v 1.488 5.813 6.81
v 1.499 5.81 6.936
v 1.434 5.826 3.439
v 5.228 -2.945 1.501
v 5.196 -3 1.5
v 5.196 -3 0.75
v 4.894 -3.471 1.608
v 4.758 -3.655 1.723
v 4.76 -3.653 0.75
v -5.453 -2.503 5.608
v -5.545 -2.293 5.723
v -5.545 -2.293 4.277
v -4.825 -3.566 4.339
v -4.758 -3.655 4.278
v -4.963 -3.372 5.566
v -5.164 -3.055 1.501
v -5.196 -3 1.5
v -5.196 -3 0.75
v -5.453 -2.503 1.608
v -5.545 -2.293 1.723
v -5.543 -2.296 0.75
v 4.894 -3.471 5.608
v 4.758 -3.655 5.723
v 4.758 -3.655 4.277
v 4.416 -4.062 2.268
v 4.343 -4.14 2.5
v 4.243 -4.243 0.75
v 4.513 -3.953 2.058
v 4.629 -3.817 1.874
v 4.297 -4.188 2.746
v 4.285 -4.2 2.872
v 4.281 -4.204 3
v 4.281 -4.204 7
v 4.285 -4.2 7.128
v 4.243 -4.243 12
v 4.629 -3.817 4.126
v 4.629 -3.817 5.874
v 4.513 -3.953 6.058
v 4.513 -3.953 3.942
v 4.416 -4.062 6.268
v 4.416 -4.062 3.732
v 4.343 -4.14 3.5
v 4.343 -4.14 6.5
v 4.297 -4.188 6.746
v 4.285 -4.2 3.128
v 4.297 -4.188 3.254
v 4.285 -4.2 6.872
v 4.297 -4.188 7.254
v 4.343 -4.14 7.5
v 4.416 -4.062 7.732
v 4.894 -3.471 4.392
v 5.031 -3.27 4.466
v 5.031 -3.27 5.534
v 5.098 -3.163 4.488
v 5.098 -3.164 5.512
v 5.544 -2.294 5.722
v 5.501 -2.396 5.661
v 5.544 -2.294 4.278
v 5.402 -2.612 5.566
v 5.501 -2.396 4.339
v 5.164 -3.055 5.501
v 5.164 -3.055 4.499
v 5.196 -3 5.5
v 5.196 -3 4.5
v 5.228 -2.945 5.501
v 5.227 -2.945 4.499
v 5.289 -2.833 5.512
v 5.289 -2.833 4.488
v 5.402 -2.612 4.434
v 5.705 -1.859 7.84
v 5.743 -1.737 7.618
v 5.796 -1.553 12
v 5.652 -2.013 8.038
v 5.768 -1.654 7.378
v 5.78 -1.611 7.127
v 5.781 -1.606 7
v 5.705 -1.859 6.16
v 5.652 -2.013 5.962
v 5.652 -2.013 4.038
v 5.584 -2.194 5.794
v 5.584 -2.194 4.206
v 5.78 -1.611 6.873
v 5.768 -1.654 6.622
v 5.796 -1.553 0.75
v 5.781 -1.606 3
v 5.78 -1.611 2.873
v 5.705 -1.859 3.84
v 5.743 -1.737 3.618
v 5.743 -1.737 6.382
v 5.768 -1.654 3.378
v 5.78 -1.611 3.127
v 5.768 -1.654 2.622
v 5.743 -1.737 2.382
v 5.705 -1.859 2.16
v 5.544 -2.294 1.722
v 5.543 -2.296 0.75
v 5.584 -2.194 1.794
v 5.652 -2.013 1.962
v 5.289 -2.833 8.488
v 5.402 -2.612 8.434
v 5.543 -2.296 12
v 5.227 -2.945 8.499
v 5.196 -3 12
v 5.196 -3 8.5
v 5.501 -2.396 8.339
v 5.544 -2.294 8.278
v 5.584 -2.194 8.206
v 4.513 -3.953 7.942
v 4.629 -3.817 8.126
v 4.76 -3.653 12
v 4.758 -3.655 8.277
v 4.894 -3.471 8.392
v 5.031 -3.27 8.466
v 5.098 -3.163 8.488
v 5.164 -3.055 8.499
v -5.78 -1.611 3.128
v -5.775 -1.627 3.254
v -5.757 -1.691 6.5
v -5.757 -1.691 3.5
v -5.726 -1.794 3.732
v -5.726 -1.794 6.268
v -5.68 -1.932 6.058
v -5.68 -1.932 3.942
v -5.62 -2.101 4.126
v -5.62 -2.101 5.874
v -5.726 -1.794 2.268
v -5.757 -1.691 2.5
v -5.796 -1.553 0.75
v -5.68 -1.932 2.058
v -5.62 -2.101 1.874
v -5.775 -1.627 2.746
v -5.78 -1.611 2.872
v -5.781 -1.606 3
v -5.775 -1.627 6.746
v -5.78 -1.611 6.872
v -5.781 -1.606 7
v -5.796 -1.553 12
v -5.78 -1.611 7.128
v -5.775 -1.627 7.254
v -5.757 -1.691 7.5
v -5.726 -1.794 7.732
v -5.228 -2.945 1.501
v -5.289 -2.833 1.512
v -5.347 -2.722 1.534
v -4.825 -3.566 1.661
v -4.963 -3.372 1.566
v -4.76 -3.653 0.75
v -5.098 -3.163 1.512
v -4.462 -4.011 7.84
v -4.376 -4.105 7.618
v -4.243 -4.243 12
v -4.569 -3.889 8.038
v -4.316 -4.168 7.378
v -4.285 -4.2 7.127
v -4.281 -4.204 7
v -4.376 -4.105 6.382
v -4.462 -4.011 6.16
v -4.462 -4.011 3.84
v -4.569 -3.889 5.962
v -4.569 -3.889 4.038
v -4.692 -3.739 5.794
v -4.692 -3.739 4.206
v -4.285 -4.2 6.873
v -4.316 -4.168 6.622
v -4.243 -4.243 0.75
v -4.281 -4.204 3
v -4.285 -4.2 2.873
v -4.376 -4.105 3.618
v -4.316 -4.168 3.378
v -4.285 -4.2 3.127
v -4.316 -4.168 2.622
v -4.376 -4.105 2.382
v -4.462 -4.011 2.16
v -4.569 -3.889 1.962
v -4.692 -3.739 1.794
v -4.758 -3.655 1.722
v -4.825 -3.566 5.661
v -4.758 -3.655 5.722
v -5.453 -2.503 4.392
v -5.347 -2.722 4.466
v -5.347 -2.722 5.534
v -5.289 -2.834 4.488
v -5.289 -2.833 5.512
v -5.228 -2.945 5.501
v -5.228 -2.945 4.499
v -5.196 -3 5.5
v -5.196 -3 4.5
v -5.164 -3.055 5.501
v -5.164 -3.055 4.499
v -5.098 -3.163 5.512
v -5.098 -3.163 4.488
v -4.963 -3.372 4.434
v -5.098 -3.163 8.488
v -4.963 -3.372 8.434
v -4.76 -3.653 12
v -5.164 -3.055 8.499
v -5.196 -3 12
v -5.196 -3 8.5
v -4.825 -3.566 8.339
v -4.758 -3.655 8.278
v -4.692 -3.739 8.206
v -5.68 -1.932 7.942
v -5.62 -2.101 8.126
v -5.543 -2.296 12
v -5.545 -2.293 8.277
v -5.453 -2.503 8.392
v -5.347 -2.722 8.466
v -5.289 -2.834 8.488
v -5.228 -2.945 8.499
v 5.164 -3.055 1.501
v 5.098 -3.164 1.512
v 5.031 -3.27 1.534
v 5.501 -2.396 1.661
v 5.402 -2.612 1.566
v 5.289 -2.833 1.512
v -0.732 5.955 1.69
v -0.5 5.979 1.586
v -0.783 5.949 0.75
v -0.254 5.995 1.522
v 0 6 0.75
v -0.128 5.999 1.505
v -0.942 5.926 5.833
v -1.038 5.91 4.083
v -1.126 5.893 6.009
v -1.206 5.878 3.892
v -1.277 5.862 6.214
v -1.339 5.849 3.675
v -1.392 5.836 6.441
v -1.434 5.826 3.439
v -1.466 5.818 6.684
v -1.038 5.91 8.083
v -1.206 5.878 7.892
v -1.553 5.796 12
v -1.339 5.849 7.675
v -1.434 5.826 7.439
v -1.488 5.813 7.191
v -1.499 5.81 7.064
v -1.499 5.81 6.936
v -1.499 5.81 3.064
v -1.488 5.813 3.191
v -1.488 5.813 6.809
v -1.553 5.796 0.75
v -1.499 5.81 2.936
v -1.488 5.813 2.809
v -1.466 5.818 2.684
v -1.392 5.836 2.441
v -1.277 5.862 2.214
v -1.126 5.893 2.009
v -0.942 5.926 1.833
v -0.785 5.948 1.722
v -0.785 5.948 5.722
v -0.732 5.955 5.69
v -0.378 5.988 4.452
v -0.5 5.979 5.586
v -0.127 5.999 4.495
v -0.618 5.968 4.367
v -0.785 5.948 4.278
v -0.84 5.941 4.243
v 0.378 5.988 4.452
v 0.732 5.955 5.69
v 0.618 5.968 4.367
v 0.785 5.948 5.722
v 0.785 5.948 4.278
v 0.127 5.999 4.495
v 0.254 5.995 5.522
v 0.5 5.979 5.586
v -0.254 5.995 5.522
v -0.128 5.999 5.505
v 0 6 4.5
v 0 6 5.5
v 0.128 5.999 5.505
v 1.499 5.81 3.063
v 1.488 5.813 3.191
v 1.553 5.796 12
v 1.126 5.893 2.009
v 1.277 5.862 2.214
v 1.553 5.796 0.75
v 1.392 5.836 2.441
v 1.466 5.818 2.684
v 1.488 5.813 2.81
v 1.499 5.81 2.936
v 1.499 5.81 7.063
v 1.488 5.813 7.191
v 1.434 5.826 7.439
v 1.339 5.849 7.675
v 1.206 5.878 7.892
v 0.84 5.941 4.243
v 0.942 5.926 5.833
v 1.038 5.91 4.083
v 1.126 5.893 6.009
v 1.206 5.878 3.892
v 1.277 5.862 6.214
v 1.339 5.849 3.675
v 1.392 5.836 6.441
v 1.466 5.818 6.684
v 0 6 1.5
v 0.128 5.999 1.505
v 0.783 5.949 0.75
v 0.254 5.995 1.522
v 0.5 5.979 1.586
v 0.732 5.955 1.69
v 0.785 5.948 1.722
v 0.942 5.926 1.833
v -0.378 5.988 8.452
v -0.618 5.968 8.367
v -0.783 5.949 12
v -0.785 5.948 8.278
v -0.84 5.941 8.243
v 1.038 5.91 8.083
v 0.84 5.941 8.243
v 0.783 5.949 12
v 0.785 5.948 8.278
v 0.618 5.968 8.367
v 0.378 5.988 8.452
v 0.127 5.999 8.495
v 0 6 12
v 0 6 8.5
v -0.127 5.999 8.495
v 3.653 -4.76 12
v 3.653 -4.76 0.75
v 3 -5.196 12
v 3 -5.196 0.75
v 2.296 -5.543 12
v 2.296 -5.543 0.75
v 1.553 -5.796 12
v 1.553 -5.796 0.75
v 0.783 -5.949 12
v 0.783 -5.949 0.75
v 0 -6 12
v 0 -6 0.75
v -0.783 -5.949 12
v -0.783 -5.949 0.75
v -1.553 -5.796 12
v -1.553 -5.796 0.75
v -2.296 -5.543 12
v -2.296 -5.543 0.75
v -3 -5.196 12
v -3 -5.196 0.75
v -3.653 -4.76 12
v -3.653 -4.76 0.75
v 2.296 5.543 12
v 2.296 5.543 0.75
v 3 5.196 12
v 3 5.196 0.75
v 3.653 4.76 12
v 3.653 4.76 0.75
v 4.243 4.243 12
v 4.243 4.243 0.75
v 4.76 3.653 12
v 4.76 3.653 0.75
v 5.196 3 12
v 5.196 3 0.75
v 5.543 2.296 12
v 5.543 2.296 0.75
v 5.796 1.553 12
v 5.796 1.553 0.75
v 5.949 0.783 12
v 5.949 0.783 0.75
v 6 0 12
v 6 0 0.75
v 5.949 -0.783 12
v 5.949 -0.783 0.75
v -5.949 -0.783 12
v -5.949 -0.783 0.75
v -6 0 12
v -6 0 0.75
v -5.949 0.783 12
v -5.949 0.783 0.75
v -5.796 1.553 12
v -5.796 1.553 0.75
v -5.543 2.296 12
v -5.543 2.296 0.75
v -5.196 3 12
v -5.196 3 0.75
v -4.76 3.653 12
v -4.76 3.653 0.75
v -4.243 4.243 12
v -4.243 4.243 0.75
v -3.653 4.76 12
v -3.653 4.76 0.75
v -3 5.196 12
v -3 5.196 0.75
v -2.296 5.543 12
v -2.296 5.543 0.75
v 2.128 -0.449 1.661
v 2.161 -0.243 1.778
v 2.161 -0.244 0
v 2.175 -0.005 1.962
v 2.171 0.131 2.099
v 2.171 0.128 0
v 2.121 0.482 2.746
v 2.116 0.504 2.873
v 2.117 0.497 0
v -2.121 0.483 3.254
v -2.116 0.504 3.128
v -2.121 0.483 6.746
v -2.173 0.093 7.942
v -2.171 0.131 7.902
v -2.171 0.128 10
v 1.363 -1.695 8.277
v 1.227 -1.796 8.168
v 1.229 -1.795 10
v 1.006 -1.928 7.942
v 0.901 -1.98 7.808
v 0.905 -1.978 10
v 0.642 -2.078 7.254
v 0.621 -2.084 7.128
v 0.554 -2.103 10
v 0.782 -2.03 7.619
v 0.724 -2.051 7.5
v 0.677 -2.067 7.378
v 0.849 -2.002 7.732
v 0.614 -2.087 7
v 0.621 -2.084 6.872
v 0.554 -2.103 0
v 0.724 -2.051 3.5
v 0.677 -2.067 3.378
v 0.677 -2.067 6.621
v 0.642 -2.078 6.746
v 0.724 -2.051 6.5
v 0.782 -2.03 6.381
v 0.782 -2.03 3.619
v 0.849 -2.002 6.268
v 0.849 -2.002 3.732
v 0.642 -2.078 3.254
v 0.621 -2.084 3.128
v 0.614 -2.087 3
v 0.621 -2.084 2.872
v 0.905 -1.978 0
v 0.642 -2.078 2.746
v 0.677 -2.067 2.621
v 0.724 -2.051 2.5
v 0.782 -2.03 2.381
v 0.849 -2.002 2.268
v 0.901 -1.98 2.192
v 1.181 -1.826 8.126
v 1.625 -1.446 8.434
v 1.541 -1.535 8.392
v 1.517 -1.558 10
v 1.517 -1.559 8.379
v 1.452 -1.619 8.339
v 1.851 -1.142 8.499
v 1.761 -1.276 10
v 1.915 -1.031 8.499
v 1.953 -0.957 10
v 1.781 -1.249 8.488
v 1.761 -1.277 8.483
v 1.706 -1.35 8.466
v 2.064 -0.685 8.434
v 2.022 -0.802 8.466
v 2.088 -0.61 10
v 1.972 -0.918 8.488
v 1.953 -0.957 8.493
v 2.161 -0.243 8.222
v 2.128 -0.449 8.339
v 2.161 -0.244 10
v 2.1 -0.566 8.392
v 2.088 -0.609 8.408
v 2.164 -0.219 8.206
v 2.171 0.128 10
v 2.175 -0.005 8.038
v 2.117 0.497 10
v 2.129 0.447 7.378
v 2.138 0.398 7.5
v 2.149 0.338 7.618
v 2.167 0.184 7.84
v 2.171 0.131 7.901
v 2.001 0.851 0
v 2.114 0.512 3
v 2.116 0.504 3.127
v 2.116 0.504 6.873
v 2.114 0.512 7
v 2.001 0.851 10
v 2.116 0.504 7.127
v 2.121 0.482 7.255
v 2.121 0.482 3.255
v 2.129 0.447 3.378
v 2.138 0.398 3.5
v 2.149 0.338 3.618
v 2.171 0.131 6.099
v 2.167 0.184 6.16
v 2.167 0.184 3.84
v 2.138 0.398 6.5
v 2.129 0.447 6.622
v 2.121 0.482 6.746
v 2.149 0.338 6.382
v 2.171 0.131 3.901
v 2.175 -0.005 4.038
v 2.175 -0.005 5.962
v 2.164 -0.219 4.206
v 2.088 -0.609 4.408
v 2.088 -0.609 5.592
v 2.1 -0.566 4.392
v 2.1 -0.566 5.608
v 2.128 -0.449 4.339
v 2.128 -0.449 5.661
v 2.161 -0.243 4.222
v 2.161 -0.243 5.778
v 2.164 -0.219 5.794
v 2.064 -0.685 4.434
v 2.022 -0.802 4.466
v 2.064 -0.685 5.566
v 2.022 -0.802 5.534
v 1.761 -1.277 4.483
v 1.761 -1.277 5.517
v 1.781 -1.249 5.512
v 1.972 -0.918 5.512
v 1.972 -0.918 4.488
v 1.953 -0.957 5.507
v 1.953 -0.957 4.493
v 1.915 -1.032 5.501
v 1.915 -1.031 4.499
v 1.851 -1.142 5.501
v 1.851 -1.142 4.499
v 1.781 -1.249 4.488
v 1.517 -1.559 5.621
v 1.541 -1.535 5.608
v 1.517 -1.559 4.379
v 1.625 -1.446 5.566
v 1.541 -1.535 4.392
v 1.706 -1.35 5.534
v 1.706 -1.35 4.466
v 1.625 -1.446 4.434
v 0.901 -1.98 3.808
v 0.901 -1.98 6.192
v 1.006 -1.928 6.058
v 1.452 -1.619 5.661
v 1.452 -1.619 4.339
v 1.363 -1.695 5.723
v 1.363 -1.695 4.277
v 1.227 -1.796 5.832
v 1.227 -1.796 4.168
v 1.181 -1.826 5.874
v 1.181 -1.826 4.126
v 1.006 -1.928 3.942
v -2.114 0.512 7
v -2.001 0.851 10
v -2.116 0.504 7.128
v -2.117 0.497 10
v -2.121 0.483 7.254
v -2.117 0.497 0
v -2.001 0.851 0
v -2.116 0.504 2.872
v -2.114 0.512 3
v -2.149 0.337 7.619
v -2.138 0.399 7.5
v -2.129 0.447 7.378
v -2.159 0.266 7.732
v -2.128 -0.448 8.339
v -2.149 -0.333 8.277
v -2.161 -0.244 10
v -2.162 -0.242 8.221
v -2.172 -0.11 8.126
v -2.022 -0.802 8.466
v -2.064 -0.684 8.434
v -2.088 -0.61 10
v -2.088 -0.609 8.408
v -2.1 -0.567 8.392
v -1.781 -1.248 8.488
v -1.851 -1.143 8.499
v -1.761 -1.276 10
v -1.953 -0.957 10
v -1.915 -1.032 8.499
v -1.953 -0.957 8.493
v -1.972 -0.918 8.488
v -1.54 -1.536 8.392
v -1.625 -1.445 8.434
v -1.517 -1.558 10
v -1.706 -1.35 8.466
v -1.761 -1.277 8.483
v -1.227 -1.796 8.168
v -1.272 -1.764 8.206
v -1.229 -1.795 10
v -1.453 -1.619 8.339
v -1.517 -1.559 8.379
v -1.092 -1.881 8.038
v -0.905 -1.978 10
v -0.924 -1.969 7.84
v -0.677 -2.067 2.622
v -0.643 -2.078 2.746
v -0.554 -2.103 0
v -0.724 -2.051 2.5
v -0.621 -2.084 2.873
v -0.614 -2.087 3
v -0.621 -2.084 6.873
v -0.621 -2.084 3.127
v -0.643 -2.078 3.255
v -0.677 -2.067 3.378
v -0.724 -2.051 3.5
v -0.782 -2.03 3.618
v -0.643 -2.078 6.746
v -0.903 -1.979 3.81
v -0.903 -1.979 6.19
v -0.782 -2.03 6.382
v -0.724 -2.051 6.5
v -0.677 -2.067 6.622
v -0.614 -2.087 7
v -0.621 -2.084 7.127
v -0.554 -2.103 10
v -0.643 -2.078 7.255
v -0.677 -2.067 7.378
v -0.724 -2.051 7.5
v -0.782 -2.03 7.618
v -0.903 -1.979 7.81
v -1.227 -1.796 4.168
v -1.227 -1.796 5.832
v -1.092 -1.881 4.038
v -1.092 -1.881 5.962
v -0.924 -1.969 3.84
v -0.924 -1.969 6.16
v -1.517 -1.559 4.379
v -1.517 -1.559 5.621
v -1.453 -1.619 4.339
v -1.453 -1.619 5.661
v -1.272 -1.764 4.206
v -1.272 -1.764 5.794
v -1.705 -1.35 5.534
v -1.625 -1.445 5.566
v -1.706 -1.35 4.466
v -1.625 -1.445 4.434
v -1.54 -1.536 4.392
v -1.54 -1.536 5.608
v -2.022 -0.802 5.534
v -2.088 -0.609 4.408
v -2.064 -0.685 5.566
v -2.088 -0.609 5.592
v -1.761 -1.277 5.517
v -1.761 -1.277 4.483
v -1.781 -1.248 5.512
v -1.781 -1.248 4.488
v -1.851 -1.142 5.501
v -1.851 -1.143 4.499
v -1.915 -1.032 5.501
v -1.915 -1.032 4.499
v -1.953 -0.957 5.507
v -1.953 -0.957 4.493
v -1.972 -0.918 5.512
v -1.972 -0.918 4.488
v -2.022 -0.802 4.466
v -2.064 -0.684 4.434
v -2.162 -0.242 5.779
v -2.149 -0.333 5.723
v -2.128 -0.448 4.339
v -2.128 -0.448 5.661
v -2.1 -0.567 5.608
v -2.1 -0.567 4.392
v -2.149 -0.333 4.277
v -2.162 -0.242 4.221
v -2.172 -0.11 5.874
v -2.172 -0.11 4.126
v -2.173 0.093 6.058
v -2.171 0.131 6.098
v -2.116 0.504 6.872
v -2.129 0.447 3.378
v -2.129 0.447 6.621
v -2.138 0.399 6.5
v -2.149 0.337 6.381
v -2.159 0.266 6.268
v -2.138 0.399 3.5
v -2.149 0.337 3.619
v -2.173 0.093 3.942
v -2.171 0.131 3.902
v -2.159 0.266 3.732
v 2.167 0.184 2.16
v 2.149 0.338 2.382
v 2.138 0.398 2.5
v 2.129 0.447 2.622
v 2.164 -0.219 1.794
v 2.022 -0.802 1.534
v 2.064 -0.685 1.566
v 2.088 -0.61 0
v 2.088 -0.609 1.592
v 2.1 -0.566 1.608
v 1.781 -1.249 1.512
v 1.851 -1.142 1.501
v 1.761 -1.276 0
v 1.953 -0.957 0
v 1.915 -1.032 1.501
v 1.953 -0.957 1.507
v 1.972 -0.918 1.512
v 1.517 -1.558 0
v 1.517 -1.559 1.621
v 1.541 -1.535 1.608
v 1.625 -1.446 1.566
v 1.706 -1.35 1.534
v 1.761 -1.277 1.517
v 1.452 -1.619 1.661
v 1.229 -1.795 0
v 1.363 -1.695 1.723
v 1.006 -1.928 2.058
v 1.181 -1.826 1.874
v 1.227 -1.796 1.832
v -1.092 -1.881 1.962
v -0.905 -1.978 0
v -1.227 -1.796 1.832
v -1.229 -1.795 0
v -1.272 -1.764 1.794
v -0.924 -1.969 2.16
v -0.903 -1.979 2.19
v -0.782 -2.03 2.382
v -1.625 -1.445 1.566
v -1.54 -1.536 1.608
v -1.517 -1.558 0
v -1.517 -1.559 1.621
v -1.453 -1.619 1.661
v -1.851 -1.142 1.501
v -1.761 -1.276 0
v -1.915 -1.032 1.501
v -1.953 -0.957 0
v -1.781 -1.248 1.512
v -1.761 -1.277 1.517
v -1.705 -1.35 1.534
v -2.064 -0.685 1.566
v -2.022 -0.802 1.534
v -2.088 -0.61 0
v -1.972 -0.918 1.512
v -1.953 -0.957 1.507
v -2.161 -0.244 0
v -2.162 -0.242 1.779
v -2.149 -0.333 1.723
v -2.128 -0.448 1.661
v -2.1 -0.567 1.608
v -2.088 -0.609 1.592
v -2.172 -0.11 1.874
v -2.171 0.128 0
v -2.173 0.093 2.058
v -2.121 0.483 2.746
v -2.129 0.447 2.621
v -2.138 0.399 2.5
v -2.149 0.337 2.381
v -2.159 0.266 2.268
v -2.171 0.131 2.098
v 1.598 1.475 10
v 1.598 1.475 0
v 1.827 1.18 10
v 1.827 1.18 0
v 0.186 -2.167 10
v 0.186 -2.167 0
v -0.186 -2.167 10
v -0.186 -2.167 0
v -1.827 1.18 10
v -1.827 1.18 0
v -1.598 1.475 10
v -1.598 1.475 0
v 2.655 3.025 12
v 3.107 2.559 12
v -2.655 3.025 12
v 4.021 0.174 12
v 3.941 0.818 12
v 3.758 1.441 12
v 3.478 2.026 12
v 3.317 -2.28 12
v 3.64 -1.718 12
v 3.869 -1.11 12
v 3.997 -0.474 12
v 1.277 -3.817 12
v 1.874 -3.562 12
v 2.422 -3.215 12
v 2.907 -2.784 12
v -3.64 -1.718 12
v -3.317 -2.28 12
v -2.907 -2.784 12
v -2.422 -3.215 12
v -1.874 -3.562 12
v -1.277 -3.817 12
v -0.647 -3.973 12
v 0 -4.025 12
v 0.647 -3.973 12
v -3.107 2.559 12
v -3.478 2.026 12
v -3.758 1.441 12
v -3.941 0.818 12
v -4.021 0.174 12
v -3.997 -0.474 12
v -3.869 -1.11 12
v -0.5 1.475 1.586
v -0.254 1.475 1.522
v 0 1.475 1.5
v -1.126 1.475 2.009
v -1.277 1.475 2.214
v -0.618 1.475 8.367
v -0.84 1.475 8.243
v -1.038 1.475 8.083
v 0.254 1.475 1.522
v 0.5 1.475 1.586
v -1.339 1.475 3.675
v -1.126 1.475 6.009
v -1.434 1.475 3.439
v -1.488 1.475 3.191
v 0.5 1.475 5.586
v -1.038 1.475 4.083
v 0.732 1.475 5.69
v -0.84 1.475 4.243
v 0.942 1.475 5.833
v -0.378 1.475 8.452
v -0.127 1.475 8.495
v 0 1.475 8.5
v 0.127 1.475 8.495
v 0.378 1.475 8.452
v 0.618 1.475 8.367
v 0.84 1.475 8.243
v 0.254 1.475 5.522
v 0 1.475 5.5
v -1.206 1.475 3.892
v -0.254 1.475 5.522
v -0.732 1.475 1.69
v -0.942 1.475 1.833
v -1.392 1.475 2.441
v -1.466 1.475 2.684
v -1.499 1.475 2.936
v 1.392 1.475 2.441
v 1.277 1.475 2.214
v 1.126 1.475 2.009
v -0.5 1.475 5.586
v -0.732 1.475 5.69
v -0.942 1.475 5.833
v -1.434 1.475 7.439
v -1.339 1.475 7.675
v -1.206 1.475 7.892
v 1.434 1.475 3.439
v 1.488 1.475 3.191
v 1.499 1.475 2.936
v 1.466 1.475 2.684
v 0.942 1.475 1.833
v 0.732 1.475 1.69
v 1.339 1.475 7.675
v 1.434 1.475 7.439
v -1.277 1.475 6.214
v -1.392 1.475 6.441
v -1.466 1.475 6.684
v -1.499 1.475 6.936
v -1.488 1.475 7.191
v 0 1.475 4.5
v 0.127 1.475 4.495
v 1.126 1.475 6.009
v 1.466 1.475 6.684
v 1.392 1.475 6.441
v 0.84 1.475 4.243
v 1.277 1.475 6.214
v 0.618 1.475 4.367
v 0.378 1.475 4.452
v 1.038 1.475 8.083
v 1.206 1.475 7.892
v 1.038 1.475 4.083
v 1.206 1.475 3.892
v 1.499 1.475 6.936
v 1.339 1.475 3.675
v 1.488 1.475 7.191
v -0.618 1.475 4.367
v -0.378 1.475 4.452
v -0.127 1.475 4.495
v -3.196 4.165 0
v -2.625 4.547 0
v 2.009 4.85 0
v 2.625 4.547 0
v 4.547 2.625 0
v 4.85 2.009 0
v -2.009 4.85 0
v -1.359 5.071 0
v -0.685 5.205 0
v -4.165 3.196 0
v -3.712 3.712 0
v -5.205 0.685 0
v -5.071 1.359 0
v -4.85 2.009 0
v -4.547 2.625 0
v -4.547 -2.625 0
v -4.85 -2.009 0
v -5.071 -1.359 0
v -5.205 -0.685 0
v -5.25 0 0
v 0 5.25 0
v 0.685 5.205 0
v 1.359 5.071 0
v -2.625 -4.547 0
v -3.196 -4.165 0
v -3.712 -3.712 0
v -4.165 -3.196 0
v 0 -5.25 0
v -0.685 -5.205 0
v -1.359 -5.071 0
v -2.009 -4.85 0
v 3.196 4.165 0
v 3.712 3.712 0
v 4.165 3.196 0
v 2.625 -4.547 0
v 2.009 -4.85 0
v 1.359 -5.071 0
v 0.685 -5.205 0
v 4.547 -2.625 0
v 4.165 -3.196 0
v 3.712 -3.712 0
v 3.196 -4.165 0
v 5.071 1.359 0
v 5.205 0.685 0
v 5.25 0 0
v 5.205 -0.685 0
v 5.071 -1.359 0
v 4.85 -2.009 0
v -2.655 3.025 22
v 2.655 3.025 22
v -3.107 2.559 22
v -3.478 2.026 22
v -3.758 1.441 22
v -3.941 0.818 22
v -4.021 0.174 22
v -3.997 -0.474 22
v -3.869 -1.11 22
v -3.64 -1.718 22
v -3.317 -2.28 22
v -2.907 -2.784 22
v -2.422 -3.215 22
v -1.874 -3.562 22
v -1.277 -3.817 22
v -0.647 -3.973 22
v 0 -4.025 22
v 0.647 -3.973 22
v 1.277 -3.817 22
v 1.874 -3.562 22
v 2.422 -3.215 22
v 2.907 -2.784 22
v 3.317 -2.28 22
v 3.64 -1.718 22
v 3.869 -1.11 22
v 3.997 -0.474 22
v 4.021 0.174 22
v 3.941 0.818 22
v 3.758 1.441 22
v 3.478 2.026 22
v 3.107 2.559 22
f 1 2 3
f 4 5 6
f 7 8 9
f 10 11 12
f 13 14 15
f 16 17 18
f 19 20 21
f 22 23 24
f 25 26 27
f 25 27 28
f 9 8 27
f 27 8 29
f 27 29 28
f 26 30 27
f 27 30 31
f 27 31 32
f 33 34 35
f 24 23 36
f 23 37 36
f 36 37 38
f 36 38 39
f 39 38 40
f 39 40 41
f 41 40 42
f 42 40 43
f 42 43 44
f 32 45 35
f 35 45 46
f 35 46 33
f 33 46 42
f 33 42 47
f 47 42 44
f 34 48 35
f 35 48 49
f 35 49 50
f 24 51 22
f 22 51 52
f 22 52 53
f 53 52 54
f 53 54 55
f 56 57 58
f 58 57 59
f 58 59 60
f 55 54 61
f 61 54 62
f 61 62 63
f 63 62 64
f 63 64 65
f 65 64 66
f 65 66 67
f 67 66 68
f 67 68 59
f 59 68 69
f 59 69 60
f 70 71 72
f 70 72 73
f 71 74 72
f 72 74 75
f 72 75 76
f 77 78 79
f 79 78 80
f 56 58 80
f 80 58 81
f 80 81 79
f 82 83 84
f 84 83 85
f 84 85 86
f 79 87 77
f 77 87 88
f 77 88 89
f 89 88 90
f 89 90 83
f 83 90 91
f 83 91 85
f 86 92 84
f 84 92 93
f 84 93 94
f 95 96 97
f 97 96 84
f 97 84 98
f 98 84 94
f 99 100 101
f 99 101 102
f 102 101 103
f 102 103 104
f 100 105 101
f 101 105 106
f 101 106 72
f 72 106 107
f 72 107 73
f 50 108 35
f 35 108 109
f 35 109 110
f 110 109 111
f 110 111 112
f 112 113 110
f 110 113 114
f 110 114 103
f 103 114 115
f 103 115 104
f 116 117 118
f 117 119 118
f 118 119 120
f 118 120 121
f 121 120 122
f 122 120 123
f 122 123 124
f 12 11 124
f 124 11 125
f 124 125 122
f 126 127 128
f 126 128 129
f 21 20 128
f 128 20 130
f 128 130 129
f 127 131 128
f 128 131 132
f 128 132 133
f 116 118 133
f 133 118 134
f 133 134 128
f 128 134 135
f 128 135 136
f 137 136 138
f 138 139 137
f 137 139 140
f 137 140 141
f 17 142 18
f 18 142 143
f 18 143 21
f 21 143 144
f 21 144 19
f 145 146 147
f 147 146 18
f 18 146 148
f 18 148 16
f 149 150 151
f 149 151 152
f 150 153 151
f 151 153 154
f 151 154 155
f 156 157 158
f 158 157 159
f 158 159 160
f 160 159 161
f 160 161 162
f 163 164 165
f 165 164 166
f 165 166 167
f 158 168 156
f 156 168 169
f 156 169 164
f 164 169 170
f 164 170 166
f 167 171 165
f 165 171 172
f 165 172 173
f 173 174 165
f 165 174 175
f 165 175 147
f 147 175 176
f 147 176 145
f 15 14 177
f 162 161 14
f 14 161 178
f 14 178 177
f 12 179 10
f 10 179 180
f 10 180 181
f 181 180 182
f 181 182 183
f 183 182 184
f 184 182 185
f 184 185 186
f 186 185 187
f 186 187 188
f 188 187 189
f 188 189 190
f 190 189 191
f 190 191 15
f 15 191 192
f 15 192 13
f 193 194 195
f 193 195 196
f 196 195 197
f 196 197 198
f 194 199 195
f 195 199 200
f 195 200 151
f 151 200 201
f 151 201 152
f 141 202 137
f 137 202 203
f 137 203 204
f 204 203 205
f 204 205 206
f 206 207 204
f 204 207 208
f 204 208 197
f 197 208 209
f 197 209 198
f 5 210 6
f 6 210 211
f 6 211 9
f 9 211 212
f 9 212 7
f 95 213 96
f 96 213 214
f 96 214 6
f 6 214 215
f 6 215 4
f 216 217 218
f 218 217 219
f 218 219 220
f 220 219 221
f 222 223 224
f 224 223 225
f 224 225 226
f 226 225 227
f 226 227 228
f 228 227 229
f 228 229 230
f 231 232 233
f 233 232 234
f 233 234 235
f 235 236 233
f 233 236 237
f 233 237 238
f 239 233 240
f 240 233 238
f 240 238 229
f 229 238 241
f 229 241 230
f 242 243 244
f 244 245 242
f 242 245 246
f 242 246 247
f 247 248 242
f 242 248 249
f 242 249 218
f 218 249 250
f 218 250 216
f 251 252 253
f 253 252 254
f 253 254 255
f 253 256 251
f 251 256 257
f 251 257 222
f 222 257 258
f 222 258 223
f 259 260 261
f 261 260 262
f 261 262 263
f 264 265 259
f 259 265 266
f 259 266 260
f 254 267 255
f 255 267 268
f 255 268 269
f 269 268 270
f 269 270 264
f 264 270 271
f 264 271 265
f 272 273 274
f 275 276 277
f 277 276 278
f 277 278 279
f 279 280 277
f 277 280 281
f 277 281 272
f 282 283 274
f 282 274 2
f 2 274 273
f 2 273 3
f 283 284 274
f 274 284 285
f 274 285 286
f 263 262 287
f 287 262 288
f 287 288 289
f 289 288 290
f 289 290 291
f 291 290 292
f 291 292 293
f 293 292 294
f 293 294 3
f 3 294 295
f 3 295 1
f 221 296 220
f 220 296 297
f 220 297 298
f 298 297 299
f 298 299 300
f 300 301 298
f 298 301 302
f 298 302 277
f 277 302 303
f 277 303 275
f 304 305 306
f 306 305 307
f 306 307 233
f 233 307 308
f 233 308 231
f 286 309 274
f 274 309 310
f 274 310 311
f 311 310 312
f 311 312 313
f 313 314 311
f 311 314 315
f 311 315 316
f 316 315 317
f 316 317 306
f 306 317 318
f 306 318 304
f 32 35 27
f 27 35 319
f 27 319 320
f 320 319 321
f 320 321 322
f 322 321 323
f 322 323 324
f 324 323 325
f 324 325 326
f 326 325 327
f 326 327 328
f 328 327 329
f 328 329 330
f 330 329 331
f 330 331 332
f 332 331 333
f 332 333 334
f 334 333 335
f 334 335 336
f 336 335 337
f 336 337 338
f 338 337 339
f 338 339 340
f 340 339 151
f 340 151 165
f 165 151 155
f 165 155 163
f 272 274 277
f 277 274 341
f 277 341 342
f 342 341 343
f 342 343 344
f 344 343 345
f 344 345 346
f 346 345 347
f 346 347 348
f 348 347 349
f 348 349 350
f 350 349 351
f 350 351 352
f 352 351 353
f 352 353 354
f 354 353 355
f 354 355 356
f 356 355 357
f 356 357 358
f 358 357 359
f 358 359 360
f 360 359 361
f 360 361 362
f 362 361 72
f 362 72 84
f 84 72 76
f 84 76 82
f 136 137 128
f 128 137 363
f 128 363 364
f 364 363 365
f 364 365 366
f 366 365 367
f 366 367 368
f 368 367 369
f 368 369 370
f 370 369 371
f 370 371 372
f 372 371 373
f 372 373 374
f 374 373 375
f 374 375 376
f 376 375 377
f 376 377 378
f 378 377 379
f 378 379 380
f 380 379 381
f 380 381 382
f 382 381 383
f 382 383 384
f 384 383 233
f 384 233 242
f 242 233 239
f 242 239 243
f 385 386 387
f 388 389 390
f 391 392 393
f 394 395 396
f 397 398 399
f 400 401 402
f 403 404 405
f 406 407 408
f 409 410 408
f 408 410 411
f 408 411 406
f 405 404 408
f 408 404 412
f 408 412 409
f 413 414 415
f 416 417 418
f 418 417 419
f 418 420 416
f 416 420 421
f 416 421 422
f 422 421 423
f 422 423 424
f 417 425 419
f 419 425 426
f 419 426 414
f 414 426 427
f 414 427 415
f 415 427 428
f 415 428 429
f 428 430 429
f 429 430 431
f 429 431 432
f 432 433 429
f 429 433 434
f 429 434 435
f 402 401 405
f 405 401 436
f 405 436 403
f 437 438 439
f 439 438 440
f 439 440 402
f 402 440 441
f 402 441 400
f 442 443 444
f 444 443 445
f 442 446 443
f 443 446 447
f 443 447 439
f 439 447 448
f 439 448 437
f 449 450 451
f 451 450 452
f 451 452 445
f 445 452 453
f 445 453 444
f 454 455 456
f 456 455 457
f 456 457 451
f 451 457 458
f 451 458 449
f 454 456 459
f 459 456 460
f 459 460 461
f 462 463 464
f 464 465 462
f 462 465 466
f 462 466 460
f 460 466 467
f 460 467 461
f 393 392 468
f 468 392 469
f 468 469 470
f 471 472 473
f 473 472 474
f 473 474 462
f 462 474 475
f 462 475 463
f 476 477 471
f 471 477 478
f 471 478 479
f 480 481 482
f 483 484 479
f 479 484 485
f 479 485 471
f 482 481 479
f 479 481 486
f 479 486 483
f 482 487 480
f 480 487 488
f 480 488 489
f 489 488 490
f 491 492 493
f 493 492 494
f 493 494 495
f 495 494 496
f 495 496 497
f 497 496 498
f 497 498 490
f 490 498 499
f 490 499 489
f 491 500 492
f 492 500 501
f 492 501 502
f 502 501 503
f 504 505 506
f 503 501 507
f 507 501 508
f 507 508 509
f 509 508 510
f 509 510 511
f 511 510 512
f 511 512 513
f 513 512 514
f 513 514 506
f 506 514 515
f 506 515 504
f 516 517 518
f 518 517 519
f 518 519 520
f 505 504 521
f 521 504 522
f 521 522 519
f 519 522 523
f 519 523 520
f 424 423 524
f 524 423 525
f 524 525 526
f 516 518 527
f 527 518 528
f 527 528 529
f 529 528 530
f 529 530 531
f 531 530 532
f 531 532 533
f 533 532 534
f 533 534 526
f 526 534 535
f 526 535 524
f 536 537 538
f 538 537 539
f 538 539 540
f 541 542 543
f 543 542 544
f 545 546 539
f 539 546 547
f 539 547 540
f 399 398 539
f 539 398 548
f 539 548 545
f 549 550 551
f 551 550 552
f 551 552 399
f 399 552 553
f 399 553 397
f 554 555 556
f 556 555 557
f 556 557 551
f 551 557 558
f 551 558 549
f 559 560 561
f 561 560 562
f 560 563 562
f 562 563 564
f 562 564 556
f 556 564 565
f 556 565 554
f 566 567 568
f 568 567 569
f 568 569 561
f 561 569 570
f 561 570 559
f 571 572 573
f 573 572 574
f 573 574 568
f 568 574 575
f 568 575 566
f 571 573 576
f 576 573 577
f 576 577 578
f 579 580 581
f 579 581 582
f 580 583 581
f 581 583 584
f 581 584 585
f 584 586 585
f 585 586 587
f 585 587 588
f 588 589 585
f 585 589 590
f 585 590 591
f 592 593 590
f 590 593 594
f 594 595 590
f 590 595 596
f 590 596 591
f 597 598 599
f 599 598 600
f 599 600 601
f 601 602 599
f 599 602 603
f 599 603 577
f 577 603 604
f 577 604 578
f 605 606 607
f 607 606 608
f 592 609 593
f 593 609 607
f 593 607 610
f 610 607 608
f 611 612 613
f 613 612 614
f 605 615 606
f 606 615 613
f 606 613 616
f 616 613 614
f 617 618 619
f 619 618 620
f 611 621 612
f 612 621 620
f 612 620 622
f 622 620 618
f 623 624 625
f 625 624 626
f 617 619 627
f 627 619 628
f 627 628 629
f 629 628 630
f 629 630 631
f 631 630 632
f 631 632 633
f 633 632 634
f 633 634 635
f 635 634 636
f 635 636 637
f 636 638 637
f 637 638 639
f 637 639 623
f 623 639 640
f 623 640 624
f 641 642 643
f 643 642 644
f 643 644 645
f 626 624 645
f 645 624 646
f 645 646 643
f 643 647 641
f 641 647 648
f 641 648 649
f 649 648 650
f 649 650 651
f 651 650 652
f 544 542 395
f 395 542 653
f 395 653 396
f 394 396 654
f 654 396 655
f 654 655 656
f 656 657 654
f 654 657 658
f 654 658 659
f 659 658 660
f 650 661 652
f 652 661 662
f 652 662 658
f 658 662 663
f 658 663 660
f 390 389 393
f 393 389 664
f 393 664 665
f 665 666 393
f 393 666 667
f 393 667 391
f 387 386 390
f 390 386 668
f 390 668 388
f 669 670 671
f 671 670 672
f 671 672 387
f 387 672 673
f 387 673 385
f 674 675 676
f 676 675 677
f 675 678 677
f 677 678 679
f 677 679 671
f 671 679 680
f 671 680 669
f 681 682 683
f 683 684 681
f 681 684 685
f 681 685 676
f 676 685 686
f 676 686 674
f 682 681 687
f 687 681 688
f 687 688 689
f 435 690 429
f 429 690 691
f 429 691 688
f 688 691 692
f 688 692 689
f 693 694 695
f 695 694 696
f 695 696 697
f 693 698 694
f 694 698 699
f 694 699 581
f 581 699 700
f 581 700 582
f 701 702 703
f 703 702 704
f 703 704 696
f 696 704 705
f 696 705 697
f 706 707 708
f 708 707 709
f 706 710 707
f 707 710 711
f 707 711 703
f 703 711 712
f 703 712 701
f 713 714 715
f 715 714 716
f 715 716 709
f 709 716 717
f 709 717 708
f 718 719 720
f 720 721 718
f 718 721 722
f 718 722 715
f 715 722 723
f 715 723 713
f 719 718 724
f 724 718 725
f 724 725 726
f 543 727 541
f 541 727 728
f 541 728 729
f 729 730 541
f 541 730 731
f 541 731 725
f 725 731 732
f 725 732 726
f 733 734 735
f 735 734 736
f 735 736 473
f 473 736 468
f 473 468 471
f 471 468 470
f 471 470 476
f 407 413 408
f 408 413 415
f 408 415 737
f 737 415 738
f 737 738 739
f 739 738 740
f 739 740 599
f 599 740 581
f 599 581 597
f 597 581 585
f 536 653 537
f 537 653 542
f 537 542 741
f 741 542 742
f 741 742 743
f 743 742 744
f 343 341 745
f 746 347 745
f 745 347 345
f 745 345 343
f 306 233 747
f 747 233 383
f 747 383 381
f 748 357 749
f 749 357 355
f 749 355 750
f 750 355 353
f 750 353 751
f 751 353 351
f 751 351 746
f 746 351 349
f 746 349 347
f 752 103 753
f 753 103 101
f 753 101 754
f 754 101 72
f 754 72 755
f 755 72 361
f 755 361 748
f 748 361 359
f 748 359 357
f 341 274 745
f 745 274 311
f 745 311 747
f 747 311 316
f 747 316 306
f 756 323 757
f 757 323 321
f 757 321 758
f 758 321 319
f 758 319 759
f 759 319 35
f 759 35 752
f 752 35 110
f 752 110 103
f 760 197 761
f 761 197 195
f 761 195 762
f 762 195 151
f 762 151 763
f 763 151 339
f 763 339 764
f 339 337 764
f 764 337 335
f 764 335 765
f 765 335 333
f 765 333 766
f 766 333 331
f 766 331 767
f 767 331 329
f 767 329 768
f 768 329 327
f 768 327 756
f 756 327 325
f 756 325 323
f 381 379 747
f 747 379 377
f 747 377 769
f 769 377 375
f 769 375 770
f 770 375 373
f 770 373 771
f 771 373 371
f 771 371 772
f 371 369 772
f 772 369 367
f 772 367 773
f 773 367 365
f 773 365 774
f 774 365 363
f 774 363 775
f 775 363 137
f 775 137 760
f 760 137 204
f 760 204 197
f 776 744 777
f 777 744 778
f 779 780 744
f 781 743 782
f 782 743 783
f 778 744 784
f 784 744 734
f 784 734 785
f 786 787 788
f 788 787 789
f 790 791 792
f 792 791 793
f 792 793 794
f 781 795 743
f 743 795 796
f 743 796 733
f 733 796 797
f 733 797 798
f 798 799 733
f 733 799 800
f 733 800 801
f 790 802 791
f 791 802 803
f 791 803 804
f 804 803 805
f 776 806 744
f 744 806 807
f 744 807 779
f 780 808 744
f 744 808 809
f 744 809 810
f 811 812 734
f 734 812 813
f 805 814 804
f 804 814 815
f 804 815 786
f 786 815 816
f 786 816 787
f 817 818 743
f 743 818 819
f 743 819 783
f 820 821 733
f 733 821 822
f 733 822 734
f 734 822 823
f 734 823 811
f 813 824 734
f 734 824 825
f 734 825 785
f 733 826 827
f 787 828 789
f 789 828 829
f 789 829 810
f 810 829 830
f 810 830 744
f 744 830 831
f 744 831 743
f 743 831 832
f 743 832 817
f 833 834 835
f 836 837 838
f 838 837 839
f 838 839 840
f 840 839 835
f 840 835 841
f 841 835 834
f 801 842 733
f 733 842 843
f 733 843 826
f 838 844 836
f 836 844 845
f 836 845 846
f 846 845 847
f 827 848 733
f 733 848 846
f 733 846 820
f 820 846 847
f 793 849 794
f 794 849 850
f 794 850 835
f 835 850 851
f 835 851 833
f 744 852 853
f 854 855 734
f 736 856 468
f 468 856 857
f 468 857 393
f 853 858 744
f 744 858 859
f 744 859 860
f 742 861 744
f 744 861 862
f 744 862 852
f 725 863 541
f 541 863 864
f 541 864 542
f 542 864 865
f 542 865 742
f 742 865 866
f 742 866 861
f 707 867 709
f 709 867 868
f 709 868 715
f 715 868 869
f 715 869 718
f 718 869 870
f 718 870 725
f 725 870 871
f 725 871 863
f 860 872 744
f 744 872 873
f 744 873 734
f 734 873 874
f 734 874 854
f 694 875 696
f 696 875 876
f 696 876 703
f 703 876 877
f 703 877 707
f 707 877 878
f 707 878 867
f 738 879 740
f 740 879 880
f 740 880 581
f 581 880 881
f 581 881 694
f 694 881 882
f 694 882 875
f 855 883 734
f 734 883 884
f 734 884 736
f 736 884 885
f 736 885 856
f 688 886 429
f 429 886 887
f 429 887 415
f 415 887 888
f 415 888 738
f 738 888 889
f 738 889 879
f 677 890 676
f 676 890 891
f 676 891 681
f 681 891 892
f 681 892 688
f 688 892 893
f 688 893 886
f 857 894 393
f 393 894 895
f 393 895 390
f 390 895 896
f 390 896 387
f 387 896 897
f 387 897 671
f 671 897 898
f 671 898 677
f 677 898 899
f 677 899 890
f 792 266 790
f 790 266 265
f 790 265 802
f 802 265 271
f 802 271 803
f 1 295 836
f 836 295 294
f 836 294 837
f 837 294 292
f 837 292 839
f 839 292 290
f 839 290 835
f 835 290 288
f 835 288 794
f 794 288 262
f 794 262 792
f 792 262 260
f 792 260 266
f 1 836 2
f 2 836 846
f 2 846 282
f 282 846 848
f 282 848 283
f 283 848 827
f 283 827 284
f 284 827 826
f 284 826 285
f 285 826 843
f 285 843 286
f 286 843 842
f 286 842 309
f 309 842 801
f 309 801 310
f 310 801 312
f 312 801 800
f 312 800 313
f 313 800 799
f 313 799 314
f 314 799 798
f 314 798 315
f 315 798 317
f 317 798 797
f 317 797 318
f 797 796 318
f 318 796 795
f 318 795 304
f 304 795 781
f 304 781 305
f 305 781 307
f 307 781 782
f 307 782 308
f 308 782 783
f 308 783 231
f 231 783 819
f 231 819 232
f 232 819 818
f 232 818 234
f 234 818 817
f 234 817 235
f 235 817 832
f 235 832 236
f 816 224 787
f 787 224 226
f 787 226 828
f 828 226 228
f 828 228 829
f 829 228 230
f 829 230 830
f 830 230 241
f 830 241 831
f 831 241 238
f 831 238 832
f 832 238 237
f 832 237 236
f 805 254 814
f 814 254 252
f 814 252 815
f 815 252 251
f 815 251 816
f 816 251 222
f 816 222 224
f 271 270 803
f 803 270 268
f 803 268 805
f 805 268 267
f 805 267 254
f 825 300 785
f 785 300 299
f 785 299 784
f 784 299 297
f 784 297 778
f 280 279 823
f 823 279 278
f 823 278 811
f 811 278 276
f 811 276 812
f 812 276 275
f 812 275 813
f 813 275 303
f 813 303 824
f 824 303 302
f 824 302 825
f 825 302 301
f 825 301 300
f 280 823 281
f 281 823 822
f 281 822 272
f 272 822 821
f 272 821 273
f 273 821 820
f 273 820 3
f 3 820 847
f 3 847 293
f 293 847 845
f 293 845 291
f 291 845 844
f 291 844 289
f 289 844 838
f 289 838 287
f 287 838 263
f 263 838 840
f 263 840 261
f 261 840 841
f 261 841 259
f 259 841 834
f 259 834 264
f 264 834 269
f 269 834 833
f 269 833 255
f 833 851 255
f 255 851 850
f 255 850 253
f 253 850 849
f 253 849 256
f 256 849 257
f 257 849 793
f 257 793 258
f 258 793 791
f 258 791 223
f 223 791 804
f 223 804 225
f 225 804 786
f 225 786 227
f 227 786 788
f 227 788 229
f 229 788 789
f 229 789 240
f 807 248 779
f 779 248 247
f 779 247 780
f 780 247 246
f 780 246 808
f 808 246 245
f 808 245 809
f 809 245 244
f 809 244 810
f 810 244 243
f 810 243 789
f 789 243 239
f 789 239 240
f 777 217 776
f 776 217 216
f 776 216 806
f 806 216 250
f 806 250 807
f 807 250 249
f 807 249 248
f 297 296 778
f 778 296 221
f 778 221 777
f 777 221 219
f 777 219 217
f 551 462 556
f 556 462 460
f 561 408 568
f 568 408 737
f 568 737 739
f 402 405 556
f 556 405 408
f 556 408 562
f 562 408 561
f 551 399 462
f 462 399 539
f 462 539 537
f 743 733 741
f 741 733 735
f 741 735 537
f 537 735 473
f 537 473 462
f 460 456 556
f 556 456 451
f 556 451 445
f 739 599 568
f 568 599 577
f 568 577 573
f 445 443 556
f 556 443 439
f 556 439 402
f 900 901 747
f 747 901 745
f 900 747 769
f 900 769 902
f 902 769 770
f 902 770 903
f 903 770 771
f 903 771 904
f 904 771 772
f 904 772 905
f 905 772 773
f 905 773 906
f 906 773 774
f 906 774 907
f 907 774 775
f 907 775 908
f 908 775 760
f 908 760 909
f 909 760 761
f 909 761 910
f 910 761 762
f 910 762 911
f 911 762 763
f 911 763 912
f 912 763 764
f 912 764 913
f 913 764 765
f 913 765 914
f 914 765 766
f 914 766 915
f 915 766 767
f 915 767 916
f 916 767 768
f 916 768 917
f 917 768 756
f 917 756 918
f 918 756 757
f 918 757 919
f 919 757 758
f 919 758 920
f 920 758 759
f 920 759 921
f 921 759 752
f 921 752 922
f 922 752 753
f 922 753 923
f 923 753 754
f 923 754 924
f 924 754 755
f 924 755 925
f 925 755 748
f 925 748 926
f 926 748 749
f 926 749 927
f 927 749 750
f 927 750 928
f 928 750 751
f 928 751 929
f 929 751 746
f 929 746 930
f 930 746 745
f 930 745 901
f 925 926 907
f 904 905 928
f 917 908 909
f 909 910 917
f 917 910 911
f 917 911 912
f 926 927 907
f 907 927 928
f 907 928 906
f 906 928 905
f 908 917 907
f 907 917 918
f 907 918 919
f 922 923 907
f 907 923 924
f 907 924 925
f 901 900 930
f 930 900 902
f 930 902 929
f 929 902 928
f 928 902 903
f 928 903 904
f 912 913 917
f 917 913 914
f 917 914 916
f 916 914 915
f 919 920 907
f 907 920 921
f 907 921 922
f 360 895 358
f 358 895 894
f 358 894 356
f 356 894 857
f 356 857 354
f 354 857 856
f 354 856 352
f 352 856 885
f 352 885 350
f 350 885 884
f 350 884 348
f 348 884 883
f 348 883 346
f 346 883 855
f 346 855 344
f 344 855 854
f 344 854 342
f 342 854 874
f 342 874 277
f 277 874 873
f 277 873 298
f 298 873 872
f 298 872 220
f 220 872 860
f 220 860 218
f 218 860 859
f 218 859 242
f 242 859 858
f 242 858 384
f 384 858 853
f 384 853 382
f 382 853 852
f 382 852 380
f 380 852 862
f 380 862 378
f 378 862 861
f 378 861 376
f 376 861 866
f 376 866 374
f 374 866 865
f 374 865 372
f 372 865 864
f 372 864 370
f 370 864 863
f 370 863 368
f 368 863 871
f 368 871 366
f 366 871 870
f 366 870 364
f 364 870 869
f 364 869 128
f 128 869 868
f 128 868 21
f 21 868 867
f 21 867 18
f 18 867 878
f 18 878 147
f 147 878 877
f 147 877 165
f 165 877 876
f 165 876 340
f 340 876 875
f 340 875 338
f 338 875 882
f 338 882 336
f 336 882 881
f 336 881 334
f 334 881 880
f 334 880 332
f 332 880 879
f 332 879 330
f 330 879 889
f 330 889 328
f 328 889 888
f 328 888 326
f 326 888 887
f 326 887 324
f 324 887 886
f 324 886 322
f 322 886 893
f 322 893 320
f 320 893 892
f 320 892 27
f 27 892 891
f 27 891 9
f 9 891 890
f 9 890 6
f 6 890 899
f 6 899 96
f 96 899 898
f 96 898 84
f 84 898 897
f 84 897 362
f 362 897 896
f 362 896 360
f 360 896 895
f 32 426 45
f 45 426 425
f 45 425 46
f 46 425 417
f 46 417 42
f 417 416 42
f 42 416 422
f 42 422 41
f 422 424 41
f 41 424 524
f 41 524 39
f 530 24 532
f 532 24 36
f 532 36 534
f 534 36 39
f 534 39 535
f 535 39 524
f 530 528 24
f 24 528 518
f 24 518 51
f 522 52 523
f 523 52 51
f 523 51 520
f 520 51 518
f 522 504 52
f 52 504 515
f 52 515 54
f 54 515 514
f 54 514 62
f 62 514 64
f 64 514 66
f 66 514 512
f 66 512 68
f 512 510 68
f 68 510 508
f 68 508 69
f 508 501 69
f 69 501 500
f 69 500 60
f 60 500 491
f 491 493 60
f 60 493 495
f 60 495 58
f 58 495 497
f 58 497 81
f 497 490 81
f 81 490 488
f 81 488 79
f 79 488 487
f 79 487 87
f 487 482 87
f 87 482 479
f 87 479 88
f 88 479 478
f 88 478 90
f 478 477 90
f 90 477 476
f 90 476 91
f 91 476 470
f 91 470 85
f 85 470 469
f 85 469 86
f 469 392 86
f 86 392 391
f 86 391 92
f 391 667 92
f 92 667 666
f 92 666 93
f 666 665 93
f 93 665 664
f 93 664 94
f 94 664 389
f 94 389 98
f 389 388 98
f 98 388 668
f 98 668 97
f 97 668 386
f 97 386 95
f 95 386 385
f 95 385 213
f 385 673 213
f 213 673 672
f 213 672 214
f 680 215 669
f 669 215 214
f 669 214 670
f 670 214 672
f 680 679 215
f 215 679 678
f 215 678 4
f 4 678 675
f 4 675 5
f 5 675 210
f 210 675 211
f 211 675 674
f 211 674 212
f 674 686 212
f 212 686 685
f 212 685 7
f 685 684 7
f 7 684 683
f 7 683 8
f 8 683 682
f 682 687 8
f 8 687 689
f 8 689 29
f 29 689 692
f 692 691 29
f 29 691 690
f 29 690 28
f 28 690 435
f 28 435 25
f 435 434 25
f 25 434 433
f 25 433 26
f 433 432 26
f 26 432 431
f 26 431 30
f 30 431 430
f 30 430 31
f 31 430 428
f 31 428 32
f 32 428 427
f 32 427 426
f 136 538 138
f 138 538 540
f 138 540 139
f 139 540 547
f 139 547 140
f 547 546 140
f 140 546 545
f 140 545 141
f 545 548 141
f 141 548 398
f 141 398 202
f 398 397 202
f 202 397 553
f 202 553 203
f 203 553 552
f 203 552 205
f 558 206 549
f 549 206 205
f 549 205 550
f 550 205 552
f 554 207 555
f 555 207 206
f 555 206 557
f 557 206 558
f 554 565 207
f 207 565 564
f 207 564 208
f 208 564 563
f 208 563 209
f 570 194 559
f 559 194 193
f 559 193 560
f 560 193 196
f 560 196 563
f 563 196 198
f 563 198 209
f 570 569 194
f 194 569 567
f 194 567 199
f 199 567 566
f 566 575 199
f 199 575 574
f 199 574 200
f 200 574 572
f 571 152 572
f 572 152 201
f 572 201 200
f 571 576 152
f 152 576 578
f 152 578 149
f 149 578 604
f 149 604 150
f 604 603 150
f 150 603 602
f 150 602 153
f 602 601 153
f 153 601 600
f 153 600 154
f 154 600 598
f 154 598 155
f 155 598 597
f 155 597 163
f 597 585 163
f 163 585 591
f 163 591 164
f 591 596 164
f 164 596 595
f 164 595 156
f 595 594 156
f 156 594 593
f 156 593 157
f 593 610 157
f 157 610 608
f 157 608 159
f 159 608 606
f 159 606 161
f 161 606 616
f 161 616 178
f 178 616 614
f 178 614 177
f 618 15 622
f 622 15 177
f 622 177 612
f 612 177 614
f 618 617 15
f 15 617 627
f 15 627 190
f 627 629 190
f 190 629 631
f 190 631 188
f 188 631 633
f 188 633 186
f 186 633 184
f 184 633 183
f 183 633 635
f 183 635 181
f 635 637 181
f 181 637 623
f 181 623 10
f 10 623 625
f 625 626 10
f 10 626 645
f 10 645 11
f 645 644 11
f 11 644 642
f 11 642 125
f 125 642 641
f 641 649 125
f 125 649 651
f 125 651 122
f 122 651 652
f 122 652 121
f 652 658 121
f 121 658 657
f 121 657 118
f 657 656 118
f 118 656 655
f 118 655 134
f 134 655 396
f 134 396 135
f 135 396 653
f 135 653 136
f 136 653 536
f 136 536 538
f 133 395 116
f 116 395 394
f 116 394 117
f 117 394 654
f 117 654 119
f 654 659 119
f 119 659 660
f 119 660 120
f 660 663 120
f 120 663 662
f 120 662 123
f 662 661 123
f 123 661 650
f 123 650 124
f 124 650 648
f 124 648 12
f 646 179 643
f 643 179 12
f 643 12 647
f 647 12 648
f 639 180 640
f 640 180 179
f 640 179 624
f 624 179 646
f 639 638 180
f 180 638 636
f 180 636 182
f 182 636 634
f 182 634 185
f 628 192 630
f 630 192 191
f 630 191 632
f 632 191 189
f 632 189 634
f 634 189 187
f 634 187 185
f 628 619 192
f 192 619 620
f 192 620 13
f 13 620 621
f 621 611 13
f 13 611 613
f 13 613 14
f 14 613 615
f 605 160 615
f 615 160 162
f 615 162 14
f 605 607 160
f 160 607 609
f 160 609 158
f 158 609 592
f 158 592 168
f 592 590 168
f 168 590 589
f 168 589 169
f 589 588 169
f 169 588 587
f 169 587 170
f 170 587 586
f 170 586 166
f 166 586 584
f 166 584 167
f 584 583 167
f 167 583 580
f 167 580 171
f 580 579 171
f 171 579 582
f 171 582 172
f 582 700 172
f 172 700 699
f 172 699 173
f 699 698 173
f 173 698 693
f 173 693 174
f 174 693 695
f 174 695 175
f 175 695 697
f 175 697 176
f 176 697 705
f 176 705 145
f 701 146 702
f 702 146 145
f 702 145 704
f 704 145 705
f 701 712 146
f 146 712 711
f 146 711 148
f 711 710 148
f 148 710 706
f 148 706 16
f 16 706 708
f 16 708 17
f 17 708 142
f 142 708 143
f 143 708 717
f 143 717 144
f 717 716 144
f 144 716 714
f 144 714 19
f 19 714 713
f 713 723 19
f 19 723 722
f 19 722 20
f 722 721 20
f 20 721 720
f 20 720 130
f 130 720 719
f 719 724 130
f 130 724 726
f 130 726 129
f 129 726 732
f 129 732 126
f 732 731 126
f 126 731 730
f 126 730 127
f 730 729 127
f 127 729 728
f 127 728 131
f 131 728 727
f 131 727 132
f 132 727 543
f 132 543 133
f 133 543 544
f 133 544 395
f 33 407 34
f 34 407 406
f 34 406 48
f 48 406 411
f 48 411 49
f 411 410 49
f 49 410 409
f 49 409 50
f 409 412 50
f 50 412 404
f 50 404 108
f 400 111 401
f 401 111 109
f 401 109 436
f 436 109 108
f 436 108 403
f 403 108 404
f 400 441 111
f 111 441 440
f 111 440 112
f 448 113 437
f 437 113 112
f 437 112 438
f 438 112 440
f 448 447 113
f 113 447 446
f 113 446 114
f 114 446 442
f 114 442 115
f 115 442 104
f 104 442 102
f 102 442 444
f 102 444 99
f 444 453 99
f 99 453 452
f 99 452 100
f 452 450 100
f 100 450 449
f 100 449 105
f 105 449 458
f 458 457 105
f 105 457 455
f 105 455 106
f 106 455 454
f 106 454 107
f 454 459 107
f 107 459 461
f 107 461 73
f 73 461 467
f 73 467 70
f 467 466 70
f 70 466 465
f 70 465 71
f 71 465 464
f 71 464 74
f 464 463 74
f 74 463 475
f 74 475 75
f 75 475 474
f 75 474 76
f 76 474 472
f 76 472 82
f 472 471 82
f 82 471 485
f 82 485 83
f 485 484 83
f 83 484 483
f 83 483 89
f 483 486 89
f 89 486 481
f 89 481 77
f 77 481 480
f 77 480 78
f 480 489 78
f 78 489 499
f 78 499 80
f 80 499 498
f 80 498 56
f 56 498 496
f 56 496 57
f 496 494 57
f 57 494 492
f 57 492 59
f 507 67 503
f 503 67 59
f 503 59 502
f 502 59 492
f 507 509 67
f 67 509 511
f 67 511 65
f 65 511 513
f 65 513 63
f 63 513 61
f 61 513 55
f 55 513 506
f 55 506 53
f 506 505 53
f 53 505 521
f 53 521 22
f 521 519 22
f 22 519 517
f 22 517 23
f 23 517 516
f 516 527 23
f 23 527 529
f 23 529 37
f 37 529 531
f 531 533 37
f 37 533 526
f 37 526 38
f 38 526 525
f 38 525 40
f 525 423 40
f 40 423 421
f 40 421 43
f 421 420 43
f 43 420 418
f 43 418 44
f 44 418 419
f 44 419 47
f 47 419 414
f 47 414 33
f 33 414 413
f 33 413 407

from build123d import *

# Parameters (mm, degrees)
SKETCH1_R               = 6
BOSS_EXTRUDE1_DEPTH     = 10
CUT_EXTRUDE1_REACH      = 15.115
CUT_EXTRUDE1_END_RADIUS = 6
SKETCH3_R               = 1.5
SKETCH4_R               = 6
BOSS_EXTRUDE2_DEPTH     = 2
BOSS_EXTRUDE3_DEPTH     = 10
CHAMFER1_SIZE           = 0.75
CIRPATTERN1_COUNT       = 3


with BuildPart() as part:
    # Sketch1 → Boss-Extrude1 (new body)
    with BuildSketch(Plane.XY):
        Circle(SKETCH1_R)
        with BuildLine():
            Line((-1.598436736, 1.475), (1.598436736, 1.475))
            ThreePointArc((1.598436736, 1.475), (0, -2.175), (-1.598436736, 1.475))
        make_face(mode=Mode.SUBTRACT)
    extrude(amount=BOSS_EXTRUDE1_DEPTH)

    # Cut-Extrude1: up to this cylinder (the profile starts inside it)
    cut_extrude1_end = Plane(origin=(0, 0, 5), z_dir=(0, 0, -1)) * Cylinder(CUT_EXTRUDE1_END_RADIUS, 47.23, mode=Mode.PRIVATE)
    # Sketch3 → Cut-Extrude1 (cut, up to the surface)
    with BuildSketch(Plane(origin=(0, 0, 0), x_dir=(1, 0, 0), z_dir=(0, 1, 0)), mode=Mode.PRIVATE) as cut_extrude1_sk1:
        with Locations(Location((0, -3, 0), (0, 0, 90))):
            Circle(SKETCH3_R)
    cut_extrude1_tool1 = extrude(cut_extrude1_sk1.sketch, amount=CUT_EXTRUDE1_REACH, mode=Mode.PRIVATE) & cut_extrude1_end
    # Sketch3 → Cut-Extrude1 (cut, up to the surface)
    with BuildSketch(Plane(origin=(0, 0, 0), x_dir=(1, 0, 0), z_dir=(0, 1, 0)), mode=Mode.PRIVATE) as cut_extrude1_sk2:
        with Locations(Location((0, -7, 0), (0, 0, 90))):
            Circle(SKETCH3_R)
    cut_extrude1_tool2 = extrude(cut_extrude1_sk2.sketch, amount=CUT_EXTRUDE1_REACH, mode=Mode.PRIVATE) & cut_extrude1_end
    cut_extrude1 = cut_extrude1_tool1.solids().sort_by_distance((0, 0, 3))[0] + cut_extrude1_tool2.solids().sort_by_distance((0, 0, 7))[0]
    add(cut_extrude1, mode=Mode.SUBTRACT)

    # Sketch4 → Boss-Extrude2 (add)
    with BuildSketch(Plane.XY.offset(10)):
        Circle(SKETCH4_R)
    extrude(amount=BOSS_EXTRUDE2_DEPTH)

    # Sketch6 → Boss-Extrude3 (add)
    with BuildSketch(Plane.XY.offset(12)):
        with BuildLine():
            Line((2.655183609, 3.025), (-2.655183609, 3.025))
            ThreePointArc((-2.655183609, 3.025), (-1.660348001, -3.666588266), (4.025, 0))
            ThreePointArc((4.025, 0), (3.666588266, 1.660348001), (2.655183609, 3.025))
        make_face()
    extrude(amount=BOSS_EXTRUDE3_DEPTH)

    # Chamfer1
    chamfer1_edges = [part.edges().sort_by_distance(p)[0] for p in [
        (-6, 0, 0),
    ]]
    chamfer(chamfer1_edges, length=CHAMFER1_SIZE)

    # CirPattern1: Cut-Extrude1 ×3 about axis
    cirpattern1_axis = Axis((0, 0, 0), (0, 0, -1))
    for i in range(1, CIRPATTERN1_COUNT):
        add(cut_extrude1.rotate(cirpattern1_axis, i * 360 / CIRPATTERN1_COUNT), mode=Mode.SUBTRACT)


solid = part.part
